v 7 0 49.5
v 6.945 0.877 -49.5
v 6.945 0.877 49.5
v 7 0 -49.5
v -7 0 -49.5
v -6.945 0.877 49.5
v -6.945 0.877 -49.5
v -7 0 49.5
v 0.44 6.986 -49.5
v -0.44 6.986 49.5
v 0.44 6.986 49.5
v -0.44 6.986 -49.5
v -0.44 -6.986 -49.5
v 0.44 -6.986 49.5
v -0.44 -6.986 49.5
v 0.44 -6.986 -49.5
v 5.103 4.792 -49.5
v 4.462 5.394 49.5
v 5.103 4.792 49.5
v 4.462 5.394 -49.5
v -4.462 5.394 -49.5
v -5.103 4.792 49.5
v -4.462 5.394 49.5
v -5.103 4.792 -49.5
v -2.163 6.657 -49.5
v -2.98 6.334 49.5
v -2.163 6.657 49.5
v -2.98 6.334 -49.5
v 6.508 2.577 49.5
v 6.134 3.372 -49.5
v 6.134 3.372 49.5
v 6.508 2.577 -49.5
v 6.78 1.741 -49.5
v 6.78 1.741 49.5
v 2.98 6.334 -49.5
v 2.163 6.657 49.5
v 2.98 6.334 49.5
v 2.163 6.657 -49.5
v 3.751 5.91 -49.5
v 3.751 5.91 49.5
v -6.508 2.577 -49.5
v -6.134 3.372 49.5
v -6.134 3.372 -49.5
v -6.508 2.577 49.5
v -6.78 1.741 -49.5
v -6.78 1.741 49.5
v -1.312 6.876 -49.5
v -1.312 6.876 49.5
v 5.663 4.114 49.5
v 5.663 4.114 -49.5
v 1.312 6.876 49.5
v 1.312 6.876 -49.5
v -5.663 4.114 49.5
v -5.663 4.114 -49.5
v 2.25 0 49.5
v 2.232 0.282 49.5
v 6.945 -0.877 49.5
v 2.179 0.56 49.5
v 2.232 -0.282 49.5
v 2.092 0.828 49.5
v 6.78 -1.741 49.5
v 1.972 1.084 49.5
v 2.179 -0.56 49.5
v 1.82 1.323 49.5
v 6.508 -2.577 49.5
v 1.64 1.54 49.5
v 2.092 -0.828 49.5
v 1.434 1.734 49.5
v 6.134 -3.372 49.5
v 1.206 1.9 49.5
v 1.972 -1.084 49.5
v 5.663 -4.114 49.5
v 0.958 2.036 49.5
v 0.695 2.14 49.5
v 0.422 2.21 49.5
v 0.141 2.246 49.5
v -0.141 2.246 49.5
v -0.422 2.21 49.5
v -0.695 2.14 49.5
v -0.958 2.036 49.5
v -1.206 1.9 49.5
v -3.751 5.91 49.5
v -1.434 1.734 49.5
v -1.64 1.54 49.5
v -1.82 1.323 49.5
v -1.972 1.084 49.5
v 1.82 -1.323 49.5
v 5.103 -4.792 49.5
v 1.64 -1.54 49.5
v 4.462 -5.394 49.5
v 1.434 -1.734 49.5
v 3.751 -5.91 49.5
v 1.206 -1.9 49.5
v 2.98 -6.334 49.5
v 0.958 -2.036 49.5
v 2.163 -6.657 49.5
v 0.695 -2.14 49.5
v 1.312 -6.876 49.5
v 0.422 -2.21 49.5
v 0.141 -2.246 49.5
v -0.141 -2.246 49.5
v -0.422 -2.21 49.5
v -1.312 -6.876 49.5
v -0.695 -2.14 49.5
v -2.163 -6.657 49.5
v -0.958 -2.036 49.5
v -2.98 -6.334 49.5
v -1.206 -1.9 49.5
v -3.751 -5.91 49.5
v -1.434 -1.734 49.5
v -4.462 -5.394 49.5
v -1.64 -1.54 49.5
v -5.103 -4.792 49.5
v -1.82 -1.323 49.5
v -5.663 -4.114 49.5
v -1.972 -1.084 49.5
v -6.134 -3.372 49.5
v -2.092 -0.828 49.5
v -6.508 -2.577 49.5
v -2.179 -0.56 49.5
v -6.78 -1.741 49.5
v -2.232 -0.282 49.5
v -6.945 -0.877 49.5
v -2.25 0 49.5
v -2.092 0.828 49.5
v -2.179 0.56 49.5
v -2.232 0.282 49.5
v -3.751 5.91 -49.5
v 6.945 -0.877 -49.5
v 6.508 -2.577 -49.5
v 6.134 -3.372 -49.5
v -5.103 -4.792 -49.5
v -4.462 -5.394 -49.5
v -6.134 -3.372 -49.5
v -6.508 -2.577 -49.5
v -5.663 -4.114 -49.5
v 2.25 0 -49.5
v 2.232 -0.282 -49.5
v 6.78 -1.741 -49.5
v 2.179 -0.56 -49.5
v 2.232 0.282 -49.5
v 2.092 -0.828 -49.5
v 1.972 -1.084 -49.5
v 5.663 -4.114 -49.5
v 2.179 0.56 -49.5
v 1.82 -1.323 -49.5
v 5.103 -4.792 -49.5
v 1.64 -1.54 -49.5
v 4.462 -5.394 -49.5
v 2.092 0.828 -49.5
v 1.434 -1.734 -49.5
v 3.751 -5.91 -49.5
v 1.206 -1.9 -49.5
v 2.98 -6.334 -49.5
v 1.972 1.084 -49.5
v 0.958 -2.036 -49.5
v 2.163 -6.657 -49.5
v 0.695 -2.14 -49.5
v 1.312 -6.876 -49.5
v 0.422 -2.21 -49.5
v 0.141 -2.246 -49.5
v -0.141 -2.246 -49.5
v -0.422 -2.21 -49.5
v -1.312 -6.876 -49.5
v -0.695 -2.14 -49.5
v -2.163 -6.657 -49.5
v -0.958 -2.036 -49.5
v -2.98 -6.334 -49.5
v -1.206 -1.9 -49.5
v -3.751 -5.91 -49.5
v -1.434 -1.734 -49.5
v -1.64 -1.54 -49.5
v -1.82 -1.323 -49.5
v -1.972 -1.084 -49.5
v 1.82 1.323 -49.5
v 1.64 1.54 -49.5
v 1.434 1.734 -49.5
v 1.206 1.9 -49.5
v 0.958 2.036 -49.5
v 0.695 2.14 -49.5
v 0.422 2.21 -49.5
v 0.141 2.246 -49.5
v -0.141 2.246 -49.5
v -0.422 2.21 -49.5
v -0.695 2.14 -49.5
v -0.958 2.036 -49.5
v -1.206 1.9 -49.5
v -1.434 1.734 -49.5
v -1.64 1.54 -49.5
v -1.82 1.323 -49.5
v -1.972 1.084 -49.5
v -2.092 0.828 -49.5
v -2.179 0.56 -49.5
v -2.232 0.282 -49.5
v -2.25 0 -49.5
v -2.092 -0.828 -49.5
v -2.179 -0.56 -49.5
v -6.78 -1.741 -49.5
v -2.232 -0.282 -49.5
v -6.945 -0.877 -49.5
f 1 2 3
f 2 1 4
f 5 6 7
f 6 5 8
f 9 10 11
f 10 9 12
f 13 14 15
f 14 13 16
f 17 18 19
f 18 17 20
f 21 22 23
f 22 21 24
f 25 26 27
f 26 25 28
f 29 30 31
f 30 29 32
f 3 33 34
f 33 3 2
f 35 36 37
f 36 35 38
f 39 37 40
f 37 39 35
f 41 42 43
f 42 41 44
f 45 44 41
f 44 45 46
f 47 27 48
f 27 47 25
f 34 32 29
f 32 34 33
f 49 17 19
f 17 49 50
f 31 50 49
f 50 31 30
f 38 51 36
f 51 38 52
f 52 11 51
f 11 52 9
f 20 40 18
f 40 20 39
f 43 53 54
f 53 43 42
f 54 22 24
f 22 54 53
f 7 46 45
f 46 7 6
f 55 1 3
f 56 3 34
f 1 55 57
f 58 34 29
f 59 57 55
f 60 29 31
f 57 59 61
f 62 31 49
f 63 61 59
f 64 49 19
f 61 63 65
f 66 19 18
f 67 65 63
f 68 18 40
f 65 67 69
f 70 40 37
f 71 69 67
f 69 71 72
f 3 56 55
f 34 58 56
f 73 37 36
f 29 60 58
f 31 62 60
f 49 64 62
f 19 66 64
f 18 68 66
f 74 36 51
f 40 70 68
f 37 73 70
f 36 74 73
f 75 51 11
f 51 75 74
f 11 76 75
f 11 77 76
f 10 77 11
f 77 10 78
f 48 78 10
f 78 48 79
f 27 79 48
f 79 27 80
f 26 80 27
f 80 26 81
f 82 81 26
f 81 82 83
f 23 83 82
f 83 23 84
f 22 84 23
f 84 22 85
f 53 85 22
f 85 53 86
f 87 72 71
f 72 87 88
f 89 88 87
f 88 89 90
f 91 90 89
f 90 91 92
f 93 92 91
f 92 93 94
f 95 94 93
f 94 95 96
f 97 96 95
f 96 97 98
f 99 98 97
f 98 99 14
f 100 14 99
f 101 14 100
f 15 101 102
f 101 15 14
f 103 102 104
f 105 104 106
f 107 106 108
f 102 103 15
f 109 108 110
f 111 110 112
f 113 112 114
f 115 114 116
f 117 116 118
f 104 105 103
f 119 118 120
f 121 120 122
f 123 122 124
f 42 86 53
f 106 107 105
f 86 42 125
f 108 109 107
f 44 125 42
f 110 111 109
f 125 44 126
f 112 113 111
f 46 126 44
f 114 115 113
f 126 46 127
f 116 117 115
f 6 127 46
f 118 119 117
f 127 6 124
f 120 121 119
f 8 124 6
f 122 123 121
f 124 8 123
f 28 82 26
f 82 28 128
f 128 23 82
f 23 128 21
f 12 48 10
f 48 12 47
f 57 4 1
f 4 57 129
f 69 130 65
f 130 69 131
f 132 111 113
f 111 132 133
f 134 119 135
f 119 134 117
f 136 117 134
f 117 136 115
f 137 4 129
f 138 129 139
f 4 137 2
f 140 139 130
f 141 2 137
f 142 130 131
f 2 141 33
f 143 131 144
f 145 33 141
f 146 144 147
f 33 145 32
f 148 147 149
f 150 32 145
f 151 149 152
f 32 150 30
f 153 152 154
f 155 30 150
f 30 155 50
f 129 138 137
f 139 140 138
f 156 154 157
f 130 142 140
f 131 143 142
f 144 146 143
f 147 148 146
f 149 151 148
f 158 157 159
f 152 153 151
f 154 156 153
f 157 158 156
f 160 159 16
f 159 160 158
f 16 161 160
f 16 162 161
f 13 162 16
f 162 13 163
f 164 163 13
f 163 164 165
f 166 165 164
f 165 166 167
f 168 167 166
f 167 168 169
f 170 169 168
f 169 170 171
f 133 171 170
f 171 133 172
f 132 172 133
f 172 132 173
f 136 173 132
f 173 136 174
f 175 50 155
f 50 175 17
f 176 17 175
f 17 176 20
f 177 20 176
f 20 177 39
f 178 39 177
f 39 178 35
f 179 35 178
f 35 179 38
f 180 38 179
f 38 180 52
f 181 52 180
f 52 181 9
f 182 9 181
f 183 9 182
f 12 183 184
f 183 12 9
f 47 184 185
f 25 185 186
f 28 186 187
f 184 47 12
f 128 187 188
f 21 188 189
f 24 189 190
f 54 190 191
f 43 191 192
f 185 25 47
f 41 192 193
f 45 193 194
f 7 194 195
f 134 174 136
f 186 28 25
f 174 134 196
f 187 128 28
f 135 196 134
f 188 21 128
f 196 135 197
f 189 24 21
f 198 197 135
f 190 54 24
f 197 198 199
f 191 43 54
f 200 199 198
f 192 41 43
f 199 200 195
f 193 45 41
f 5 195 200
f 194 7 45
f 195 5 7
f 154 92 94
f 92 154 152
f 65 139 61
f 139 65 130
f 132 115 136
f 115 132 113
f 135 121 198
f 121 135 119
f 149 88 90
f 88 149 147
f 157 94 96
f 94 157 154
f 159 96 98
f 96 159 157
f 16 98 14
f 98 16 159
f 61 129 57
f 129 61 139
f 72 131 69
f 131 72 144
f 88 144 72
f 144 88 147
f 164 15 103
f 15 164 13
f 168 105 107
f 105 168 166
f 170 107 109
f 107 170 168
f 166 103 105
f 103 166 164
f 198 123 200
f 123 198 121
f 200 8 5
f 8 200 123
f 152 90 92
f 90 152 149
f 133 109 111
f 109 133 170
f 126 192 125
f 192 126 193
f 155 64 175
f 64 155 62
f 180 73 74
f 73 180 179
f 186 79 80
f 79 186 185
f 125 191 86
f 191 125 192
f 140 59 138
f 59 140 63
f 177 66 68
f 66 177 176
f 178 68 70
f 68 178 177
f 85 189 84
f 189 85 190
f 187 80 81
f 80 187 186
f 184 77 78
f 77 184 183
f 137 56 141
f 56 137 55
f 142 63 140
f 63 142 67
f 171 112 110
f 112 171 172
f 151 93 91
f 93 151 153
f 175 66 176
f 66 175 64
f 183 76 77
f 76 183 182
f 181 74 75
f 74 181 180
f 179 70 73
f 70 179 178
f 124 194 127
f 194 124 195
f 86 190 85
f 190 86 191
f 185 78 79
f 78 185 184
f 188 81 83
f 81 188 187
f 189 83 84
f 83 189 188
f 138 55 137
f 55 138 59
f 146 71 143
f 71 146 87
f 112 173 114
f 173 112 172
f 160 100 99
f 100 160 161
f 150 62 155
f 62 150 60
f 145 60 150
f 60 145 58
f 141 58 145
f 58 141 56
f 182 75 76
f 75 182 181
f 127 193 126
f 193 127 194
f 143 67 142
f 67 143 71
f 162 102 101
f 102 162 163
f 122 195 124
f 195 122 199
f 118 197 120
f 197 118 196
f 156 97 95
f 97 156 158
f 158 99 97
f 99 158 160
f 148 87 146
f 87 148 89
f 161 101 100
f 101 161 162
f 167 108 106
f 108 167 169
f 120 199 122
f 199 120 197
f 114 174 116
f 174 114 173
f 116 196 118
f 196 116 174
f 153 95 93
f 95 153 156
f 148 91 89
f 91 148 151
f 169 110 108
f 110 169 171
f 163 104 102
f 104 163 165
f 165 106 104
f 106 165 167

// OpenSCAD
$fn = 50;


difference() {
	union() {
		translate(v = [0, 0, -49.5000000000]) {
			cylinder(h = 99, r = 7.0000000000);
		}
	}
	union() {
		translate(v = [0, 0, -100.0000000000]) {
			cylinder(h = 200, r = 2.2500000000);
		}
	}
}
